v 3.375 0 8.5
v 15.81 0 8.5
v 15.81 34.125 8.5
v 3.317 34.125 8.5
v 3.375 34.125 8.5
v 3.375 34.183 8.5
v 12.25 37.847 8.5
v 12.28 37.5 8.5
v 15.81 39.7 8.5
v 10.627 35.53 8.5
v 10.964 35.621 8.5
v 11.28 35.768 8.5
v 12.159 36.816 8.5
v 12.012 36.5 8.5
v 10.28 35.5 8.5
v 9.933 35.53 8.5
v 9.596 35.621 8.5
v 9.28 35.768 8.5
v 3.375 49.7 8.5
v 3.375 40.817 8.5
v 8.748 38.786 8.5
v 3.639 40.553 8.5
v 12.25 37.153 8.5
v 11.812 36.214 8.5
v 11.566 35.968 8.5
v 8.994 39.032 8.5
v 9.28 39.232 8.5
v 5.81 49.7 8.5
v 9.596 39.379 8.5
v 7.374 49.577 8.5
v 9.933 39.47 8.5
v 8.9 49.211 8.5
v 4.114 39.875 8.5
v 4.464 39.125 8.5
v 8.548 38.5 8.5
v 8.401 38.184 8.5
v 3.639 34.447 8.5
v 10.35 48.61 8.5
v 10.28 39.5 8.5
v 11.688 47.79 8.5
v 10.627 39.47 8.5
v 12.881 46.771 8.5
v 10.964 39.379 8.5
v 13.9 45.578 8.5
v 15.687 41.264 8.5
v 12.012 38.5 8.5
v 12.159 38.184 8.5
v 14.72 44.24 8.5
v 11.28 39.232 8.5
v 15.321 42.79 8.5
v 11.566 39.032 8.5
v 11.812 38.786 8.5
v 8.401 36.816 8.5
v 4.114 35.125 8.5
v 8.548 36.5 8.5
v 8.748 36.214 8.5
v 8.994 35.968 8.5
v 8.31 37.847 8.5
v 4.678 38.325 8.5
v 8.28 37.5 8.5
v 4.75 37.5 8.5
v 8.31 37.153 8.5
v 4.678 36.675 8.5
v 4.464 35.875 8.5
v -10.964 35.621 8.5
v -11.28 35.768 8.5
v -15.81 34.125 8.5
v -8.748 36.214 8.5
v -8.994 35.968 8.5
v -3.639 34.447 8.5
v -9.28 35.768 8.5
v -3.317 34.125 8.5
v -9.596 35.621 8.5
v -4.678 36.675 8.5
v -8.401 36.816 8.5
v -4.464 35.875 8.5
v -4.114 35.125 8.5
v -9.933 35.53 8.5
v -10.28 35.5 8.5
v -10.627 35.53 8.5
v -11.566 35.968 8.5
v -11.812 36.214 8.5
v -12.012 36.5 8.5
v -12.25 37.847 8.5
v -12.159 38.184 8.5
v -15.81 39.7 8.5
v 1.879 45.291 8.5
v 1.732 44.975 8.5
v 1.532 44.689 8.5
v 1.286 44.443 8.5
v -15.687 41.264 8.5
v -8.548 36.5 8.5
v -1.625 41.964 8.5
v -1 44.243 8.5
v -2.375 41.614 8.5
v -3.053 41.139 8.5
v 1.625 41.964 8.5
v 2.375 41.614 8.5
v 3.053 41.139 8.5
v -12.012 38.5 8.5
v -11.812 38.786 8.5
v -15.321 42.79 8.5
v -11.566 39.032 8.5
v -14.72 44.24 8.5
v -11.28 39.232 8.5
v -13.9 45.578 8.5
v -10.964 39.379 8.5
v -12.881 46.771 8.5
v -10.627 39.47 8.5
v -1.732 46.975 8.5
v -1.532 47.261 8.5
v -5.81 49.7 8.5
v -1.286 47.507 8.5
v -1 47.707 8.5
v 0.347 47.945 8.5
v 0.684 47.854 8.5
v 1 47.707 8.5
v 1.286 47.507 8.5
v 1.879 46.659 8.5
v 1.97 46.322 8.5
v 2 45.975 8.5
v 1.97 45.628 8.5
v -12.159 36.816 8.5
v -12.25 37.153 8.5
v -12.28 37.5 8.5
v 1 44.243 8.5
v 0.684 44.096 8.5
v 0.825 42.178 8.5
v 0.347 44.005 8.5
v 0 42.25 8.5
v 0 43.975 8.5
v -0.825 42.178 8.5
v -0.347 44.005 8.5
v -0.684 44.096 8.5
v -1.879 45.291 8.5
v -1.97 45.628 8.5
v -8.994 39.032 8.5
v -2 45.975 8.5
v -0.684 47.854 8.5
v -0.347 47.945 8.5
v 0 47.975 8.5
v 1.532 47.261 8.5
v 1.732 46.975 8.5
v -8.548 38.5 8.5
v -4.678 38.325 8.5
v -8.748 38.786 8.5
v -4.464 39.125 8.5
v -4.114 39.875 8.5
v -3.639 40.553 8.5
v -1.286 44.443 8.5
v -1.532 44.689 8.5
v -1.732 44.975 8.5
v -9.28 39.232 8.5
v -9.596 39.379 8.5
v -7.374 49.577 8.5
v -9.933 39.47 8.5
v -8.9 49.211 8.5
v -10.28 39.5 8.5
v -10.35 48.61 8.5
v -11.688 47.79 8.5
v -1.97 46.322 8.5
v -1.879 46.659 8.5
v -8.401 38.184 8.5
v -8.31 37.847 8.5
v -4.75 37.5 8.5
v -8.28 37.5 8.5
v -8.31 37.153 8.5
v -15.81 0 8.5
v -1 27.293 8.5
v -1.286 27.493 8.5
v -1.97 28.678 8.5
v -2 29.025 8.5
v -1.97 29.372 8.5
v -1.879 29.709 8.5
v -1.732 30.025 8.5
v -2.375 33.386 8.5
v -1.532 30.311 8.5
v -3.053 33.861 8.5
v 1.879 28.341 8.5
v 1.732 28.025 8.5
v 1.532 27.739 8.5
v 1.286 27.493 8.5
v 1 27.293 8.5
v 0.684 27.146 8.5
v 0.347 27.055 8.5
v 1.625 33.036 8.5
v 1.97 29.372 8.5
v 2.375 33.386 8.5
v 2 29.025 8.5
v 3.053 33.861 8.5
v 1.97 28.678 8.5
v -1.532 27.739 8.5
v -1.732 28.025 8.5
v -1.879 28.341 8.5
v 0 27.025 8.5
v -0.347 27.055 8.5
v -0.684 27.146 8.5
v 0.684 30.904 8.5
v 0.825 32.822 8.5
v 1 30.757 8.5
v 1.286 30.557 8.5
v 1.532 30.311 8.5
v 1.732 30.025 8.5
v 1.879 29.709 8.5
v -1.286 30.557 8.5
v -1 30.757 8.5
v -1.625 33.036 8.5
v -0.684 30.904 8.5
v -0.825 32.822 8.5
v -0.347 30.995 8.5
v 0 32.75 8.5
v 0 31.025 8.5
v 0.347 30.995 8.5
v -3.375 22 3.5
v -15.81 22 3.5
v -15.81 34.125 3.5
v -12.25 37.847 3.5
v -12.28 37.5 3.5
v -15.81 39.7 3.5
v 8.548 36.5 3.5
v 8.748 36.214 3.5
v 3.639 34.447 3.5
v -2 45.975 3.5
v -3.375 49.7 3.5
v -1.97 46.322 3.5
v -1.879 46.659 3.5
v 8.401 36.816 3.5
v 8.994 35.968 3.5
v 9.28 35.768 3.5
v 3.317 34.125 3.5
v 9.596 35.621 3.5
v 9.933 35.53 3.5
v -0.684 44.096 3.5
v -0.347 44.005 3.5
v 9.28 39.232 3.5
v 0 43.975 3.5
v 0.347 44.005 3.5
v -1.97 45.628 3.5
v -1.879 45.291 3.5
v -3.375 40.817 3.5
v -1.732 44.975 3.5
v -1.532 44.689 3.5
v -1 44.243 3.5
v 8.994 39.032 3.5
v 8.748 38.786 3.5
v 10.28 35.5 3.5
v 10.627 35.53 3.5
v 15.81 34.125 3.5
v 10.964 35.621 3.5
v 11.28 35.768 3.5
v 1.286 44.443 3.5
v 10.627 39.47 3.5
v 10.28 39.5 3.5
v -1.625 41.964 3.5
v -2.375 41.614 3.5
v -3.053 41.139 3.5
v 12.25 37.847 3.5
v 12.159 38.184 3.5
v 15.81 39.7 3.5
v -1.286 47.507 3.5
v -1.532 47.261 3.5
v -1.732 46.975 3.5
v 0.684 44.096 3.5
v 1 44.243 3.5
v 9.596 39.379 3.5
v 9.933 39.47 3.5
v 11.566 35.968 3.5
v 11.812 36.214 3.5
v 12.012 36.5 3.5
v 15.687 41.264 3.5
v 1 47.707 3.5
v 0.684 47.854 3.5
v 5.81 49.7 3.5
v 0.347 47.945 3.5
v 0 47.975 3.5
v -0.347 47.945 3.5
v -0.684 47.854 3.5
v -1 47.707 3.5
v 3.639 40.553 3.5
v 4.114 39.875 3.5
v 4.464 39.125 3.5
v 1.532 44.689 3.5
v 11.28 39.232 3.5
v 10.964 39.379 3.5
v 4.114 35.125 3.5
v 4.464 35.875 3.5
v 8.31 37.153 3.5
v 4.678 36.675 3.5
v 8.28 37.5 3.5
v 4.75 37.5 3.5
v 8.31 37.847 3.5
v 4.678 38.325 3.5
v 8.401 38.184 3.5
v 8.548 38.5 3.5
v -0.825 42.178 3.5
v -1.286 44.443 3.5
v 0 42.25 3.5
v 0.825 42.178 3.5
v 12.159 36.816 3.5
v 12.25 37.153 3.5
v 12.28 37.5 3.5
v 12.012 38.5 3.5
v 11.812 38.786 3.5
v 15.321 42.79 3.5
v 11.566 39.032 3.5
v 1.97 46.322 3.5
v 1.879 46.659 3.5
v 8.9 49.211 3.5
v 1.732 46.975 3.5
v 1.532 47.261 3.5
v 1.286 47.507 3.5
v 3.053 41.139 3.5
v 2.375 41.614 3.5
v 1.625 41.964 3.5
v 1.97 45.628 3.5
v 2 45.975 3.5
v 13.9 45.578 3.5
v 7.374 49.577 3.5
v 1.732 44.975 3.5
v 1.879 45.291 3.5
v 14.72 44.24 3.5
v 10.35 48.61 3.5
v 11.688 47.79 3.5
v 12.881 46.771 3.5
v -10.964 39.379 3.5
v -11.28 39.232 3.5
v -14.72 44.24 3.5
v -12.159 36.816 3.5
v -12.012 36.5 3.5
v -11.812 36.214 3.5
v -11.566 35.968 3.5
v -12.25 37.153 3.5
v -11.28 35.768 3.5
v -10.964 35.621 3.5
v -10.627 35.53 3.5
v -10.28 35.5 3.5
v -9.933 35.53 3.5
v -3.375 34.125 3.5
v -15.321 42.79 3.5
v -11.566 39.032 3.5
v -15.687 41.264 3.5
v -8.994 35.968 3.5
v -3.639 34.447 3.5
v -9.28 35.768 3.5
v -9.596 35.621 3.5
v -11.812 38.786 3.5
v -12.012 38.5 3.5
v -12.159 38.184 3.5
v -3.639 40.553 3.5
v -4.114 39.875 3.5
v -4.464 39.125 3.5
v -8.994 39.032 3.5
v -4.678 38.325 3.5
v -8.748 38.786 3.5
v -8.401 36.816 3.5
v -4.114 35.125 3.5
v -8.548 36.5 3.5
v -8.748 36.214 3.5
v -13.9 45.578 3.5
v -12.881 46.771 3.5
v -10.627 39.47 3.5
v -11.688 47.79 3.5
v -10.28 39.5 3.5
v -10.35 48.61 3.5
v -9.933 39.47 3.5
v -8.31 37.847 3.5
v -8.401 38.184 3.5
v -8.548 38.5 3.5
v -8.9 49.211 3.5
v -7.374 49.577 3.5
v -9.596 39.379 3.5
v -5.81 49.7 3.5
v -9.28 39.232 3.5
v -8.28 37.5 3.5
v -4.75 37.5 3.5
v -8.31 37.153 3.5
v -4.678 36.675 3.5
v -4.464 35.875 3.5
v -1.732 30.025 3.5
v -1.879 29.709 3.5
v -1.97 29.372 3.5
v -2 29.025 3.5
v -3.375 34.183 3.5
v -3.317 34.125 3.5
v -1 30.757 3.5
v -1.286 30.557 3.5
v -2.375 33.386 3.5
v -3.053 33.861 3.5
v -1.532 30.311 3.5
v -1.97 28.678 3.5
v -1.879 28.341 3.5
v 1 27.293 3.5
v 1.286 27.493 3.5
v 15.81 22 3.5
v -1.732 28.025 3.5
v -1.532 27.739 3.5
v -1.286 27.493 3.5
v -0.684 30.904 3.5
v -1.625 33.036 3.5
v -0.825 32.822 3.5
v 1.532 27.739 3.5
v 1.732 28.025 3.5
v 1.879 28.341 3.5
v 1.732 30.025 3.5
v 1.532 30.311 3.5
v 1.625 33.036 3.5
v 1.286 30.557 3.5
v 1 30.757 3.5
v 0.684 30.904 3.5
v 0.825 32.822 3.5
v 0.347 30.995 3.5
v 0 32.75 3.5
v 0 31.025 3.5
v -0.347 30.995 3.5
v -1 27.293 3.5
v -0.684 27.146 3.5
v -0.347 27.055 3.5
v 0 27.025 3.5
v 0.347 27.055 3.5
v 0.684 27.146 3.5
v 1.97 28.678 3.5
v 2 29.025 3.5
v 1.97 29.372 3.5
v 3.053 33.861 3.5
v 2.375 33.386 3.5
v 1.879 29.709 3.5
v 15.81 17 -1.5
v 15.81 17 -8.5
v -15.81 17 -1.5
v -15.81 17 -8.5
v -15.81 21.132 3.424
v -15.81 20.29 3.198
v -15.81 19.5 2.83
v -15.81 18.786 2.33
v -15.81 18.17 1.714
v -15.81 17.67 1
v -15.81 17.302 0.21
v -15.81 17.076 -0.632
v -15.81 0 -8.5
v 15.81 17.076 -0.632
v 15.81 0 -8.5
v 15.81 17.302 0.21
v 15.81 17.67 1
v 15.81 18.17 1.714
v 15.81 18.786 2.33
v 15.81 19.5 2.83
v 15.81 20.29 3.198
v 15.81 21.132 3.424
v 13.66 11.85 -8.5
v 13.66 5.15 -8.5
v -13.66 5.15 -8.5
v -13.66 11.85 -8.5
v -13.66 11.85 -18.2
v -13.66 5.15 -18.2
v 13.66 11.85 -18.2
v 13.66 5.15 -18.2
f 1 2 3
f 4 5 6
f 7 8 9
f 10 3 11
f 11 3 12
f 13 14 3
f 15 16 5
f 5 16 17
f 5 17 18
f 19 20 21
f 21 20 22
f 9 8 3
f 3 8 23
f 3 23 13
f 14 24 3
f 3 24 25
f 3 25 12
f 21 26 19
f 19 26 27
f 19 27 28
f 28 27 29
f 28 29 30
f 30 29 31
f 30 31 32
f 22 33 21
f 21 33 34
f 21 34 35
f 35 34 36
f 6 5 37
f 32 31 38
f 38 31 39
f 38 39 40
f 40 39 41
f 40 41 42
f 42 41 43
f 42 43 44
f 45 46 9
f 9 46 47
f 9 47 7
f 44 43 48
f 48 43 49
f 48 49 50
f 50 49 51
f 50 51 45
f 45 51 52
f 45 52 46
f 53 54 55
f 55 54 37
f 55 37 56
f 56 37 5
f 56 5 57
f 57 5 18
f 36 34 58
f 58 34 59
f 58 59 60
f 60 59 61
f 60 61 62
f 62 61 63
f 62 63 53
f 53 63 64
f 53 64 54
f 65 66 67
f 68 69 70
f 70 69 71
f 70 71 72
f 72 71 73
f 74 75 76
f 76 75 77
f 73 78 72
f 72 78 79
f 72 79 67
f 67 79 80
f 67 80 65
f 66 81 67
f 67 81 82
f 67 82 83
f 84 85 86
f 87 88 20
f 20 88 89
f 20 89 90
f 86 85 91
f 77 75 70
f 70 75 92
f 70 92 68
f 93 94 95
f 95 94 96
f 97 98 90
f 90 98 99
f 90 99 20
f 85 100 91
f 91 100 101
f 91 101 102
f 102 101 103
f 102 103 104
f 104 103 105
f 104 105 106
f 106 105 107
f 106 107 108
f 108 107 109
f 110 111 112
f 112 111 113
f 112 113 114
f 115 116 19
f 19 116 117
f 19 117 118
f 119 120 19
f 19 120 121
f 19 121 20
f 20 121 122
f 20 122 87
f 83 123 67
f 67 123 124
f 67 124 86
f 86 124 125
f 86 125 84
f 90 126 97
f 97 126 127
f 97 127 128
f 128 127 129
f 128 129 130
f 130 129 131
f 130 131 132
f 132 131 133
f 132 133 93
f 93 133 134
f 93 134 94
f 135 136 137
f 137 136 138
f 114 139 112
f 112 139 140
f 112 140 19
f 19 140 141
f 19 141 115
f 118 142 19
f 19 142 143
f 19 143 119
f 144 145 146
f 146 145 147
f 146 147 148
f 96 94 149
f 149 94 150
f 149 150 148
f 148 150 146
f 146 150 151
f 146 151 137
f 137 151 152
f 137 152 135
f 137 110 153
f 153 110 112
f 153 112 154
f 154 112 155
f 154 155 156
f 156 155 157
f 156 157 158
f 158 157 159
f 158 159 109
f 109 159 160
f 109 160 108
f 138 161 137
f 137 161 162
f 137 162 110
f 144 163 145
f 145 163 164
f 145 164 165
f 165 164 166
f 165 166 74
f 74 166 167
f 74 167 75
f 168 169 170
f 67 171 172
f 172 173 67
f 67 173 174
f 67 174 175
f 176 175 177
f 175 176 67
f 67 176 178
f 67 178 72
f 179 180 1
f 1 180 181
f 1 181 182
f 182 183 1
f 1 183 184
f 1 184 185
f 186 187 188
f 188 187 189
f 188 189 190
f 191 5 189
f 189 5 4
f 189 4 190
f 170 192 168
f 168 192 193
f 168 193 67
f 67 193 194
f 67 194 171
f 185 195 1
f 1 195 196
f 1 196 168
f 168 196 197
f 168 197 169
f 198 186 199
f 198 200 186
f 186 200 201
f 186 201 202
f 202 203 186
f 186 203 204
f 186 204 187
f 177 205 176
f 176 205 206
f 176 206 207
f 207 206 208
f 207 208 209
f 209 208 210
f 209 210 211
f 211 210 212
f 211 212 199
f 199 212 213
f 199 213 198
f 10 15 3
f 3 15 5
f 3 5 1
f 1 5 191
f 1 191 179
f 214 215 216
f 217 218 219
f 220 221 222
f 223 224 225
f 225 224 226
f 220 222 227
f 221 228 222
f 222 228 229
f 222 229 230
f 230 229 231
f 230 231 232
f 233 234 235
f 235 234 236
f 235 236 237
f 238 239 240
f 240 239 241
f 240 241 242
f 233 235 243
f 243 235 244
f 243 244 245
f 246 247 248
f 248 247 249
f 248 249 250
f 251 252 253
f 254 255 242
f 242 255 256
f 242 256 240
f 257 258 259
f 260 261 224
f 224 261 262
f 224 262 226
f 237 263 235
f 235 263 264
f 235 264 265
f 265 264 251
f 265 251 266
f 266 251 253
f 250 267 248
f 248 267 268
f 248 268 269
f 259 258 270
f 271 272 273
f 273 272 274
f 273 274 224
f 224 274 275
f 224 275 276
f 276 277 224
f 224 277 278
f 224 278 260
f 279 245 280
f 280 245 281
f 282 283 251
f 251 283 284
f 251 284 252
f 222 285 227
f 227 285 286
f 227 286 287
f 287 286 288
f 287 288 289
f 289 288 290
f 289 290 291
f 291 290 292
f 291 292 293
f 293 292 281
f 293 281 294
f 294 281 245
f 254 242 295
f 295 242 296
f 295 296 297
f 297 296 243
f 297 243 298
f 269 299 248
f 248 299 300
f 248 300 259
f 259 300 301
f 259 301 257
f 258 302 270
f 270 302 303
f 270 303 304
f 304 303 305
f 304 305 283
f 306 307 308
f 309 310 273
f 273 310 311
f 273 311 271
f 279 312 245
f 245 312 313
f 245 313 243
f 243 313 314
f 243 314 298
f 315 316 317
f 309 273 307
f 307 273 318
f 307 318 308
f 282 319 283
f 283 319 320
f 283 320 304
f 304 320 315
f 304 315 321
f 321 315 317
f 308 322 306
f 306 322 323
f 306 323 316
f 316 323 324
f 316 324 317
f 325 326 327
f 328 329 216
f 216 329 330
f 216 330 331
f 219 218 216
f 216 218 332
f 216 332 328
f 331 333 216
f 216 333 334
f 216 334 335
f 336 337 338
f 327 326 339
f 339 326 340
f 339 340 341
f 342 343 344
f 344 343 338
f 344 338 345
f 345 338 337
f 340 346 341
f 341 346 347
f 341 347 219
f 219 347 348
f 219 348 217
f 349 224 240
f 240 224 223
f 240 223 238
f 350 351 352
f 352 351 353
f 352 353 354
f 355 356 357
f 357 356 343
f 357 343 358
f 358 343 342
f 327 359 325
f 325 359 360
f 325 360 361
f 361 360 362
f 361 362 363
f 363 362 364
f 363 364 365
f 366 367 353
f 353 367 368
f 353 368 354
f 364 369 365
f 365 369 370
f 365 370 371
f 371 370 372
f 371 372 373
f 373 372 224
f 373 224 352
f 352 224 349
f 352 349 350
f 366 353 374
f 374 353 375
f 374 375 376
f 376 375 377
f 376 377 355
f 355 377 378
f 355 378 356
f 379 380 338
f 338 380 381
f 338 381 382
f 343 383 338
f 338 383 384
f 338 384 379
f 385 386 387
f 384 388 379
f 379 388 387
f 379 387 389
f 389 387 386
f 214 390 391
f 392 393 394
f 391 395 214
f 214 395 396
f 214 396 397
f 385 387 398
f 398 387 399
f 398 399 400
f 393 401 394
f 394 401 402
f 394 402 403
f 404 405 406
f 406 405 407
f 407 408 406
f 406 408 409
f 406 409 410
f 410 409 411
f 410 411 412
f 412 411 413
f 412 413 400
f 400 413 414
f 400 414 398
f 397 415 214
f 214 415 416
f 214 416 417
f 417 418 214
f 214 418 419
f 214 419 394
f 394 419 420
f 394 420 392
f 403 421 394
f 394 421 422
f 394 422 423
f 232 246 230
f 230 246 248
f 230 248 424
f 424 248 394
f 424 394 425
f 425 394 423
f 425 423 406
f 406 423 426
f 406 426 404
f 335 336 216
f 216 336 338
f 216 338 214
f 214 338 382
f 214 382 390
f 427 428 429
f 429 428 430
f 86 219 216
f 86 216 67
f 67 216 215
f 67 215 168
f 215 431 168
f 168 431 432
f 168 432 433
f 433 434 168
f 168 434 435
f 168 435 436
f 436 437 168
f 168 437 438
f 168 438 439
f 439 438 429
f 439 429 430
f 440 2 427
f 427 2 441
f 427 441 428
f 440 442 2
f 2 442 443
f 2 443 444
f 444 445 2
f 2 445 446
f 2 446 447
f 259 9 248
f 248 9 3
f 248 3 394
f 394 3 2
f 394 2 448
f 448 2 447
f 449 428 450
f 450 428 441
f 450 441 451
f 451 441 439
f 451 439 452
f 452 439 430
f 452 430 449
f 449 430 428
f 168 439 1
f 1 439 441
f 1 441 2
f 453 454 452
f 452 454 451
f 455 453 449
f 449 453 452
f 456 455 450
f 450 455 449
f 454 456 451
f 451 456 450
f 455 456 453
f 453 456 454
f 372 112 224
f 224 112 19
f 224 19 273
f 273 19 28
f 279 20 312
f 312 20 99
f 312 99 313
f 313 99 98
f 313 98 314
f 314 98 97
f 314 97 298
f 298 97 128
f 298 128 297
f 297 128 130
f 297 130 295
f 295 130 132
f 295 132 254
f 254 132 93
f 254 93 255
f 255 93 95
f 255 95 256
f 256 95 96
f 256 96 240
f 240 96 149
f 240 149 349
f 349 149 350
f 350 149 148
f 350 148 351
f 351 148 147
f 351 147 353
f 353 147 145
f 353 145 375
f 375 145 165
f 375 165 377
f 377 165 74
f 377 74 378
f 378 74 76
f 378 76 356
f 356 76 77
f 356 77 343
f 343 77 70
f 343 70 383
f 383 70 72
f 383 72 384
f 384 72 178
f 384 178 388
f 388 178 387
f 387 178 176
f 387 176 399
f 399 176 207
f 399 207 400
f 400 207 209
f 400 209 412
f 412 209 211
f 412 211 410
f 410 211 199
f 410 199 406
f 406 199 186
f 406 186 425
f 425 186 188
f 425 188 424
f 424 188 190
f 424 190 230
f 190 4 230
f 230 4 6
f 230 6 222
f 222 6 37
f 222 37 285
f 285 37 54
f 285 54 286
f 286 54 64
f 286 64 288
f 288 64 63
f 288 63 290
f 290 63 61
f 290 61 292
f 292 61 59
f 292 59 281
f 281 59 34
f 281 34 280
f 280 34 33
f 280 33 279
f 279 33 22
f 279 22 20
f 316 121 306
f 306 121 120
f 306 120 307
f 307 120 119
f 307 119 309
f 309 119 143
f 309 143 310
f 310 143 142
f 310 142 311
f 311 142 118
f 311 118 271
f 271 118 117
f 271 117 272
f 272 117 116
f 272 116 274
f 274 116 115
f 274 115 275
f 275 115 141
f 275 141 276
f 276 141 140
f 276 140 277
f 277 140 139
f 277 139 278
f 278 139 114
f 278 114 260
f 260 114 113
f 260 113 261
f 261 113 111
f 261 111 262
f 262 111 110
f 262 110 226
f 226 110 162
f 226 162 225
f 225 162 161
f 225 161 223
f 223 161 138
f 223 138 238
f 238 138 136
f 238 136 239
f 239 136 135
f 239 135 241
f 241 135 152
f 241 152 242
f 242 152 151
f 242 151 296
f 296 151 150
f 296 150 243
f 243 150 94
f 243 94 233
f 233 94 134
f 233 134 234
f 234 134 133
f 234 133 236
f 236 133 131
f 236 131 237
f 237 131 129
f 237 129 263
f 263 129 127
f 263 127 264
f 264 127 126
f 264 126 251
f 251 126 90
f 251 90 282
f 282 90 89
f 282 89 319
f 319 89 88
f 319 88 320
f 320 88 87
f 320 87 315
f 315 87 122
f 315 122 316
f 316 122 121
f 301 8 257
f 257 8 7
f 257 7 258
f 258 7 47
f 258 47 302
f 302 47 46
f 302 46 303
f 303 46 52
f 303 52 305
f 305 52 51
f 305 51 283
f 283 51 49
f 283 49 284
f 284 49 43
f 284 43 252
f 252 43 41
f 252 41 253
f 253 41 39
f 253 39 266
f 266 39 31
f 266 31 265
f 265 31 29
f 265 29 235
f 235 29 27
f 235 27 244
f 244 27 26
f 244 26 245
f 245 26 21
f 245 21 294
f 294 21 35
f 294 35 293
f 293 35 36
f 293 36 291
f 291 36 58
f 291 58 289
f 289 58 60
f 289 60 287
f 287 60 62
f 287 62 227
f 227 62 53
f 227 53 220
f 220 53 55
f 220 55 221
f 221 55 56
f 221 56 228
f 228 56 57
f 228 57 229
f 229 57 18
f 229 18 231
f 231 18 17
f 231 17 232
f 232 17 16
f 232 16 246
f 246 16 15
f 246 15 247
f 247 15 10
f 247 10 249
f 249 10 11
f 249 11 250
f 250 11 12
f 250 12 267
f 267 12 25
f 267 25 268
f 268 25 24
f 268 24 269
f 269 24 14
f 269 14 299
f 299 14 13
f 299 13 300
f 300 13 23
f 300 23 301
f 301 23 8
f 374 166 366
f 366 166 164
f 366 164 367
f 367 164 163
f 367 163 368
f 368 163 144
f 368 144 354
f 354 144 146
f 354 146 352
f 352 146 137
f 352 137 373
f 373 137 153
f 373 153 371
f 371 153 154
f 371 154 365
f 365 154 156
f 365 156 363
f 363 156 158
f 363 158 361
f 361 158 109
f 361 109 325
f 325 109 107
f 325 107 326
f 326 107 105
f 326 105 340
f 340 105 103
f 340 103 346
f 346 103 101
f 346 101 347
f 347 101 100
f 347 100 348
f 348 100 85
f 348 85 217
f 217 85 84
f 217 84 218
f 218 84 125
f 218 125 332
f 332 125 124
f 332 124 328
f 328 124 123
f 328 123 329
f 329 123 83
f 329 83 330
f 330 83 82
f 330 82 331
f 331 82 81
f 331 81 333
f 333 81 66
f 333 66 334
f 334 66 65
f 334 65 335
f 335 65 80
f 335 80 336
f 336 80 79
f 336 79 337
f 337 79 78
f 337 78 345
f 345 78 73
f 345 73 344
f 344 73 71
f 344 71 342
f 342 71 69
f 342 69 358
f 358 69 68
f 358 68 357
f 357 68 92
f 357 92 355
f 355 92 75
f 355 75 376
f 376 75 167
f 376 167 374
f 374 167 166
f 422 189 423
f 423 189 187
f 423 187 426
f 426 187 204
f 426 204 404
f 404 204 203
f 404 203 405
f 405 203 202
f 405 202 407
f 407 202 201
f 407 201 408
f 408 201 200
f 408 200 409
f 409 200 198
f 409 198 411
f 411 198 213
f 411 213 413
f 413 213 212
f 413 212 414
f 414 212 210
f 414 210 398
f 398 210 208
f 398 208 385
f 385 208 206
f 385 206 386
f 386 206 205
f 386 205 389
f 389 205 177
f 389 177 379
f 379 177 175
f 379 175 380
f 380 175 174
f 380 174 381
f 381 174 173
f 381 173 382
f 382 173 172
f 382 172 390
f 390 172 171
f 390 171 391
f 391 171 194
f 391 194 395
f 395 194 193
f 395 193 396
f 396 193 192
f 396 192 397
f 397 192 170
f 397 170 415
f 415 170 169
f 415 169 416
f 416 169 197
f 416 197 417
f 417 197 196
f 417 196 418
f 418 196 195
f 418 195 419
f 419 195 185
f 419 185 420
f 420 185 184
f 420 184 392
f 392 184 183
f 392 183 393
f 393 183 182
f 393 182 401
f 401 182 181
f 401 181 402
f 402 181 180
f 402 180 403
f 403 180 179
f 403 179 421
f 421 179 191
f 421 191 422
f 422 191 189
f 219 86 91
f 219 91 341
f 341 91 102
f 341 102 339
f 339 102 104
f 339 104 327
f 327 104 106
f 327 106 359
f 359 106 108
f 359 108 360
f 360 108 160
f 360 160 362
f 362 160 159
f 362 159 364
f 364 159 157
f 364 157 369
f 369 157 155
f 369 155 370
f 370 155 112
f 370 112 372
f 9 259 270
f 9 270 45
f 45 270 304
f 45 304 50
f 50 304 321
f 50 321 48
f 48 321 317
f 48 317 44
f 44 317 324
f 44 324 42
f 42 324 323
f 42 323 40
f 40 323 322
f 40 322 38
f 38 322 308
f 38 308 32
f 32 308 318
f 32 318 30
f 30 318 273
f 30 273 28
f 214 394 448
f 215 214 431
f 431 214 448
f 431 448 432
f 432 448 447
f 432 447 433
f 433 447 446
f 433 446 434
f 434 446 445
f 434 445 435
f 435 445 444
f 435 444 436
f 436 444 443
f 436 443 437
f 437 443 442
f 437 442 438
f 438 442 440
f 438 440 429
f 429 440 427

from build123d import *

# Parameters (mm, degrees)
SKETCH1_W           = 31.62
SKETCH1_H           = 17
BOSS_EXTRUDE1_DEPTH = 17
SKETCH2_W           = 27.32
SKETCH2_H           = 6.7
BOSS_EXTRUDE2_DEPTH = 9.7
SKETCH3_W           = 31.62
SKETCH3_H           = 5
BOSS_EXTRUDE3_DEPTH = 32.7
SKETCH4_R           = 2
SKETCH4_R_2         = 4.75
CUT_EXTRUDE1_DEPTH  = 5
FILLET1_R           = 10
FILLET2_R           = 5


with BuildPart() as part:
    # Sketch1 → Boss-Extrude1 (new body)
    with BuildSketch(Plane(origin=(0, 0, 0), x_dir=(1, 0, 0), z_dir=(0, 1, 0))):
        Rectangle(SKETCH1_W, SKETCH1_H)
    extrude(amount=BOSS_EXTRUDE1_DEPTH)

    # Sketch2 → Boss-Extrude2 (add)
    with BuildSketch(Plane(origin=(0, 0, -8.5), x_dir=(-1, 0, 0), z_dir=(0, 0, -1))):
        with Locations((0, 8.5)):
            Rectangle(SKETCH2_W, SKETCH2_H)
    extrude(amount=BOSS_EXTRUDE2_DEPTH)

    # Sketch3 → Boss-Extrude3 (add)
    with BuildSketch(Plane(origin=(0, 17, 0), x_dir=(1, 0, 0), z_dir=(0, 1, 0))):
        with Locations((0, -6)):
            Rectangle(SKETCH3_W, SKETCH3_H)
    extrude(amount=BOSS_EXTRUDE3_DEPTH)

    # Sketch4 → Cut-Extrude1 (cut)
    with BuildSketch(Plane.XY.offset(8.5)):
        with Locations((0, 29.025)):
            Circle(SKETCH4_R)
        with Locations((-10.28, 37.5)):
            Circle(SKETCH4_R)
        with Locations((0, 45.975)):
            Circle(SKETCH4_R)
        with Locations(Location((10.28, 37.5, 0), (0, 0, 180))):
            Circle(SKETCH4_R)
        with Locations((0, 37.5)):
            Circle(SKETCH4_R_2)
    extrude(amount=-CUT_EXTRUDE1_DEPTH, mode=Mode.SUBTRACT)

    # Fillet1
    fillet1_edges = [part.edges().sort_by_distance(p)[0] for p in [
        (15.81, 49.7, 6),
        (-15.81, 49.7, 6),
    ]]
    fillet(fillet1_edges, radius=FILLET1_R)

    # Fillet2
    fillet2_edges = [part.edges().sort_by_distance(p)[0] for p in [
        (0, 17, 3.5),
    ]]
    fillet(fillet2_edges, radius=FILLET2_R)


solid = part.part
